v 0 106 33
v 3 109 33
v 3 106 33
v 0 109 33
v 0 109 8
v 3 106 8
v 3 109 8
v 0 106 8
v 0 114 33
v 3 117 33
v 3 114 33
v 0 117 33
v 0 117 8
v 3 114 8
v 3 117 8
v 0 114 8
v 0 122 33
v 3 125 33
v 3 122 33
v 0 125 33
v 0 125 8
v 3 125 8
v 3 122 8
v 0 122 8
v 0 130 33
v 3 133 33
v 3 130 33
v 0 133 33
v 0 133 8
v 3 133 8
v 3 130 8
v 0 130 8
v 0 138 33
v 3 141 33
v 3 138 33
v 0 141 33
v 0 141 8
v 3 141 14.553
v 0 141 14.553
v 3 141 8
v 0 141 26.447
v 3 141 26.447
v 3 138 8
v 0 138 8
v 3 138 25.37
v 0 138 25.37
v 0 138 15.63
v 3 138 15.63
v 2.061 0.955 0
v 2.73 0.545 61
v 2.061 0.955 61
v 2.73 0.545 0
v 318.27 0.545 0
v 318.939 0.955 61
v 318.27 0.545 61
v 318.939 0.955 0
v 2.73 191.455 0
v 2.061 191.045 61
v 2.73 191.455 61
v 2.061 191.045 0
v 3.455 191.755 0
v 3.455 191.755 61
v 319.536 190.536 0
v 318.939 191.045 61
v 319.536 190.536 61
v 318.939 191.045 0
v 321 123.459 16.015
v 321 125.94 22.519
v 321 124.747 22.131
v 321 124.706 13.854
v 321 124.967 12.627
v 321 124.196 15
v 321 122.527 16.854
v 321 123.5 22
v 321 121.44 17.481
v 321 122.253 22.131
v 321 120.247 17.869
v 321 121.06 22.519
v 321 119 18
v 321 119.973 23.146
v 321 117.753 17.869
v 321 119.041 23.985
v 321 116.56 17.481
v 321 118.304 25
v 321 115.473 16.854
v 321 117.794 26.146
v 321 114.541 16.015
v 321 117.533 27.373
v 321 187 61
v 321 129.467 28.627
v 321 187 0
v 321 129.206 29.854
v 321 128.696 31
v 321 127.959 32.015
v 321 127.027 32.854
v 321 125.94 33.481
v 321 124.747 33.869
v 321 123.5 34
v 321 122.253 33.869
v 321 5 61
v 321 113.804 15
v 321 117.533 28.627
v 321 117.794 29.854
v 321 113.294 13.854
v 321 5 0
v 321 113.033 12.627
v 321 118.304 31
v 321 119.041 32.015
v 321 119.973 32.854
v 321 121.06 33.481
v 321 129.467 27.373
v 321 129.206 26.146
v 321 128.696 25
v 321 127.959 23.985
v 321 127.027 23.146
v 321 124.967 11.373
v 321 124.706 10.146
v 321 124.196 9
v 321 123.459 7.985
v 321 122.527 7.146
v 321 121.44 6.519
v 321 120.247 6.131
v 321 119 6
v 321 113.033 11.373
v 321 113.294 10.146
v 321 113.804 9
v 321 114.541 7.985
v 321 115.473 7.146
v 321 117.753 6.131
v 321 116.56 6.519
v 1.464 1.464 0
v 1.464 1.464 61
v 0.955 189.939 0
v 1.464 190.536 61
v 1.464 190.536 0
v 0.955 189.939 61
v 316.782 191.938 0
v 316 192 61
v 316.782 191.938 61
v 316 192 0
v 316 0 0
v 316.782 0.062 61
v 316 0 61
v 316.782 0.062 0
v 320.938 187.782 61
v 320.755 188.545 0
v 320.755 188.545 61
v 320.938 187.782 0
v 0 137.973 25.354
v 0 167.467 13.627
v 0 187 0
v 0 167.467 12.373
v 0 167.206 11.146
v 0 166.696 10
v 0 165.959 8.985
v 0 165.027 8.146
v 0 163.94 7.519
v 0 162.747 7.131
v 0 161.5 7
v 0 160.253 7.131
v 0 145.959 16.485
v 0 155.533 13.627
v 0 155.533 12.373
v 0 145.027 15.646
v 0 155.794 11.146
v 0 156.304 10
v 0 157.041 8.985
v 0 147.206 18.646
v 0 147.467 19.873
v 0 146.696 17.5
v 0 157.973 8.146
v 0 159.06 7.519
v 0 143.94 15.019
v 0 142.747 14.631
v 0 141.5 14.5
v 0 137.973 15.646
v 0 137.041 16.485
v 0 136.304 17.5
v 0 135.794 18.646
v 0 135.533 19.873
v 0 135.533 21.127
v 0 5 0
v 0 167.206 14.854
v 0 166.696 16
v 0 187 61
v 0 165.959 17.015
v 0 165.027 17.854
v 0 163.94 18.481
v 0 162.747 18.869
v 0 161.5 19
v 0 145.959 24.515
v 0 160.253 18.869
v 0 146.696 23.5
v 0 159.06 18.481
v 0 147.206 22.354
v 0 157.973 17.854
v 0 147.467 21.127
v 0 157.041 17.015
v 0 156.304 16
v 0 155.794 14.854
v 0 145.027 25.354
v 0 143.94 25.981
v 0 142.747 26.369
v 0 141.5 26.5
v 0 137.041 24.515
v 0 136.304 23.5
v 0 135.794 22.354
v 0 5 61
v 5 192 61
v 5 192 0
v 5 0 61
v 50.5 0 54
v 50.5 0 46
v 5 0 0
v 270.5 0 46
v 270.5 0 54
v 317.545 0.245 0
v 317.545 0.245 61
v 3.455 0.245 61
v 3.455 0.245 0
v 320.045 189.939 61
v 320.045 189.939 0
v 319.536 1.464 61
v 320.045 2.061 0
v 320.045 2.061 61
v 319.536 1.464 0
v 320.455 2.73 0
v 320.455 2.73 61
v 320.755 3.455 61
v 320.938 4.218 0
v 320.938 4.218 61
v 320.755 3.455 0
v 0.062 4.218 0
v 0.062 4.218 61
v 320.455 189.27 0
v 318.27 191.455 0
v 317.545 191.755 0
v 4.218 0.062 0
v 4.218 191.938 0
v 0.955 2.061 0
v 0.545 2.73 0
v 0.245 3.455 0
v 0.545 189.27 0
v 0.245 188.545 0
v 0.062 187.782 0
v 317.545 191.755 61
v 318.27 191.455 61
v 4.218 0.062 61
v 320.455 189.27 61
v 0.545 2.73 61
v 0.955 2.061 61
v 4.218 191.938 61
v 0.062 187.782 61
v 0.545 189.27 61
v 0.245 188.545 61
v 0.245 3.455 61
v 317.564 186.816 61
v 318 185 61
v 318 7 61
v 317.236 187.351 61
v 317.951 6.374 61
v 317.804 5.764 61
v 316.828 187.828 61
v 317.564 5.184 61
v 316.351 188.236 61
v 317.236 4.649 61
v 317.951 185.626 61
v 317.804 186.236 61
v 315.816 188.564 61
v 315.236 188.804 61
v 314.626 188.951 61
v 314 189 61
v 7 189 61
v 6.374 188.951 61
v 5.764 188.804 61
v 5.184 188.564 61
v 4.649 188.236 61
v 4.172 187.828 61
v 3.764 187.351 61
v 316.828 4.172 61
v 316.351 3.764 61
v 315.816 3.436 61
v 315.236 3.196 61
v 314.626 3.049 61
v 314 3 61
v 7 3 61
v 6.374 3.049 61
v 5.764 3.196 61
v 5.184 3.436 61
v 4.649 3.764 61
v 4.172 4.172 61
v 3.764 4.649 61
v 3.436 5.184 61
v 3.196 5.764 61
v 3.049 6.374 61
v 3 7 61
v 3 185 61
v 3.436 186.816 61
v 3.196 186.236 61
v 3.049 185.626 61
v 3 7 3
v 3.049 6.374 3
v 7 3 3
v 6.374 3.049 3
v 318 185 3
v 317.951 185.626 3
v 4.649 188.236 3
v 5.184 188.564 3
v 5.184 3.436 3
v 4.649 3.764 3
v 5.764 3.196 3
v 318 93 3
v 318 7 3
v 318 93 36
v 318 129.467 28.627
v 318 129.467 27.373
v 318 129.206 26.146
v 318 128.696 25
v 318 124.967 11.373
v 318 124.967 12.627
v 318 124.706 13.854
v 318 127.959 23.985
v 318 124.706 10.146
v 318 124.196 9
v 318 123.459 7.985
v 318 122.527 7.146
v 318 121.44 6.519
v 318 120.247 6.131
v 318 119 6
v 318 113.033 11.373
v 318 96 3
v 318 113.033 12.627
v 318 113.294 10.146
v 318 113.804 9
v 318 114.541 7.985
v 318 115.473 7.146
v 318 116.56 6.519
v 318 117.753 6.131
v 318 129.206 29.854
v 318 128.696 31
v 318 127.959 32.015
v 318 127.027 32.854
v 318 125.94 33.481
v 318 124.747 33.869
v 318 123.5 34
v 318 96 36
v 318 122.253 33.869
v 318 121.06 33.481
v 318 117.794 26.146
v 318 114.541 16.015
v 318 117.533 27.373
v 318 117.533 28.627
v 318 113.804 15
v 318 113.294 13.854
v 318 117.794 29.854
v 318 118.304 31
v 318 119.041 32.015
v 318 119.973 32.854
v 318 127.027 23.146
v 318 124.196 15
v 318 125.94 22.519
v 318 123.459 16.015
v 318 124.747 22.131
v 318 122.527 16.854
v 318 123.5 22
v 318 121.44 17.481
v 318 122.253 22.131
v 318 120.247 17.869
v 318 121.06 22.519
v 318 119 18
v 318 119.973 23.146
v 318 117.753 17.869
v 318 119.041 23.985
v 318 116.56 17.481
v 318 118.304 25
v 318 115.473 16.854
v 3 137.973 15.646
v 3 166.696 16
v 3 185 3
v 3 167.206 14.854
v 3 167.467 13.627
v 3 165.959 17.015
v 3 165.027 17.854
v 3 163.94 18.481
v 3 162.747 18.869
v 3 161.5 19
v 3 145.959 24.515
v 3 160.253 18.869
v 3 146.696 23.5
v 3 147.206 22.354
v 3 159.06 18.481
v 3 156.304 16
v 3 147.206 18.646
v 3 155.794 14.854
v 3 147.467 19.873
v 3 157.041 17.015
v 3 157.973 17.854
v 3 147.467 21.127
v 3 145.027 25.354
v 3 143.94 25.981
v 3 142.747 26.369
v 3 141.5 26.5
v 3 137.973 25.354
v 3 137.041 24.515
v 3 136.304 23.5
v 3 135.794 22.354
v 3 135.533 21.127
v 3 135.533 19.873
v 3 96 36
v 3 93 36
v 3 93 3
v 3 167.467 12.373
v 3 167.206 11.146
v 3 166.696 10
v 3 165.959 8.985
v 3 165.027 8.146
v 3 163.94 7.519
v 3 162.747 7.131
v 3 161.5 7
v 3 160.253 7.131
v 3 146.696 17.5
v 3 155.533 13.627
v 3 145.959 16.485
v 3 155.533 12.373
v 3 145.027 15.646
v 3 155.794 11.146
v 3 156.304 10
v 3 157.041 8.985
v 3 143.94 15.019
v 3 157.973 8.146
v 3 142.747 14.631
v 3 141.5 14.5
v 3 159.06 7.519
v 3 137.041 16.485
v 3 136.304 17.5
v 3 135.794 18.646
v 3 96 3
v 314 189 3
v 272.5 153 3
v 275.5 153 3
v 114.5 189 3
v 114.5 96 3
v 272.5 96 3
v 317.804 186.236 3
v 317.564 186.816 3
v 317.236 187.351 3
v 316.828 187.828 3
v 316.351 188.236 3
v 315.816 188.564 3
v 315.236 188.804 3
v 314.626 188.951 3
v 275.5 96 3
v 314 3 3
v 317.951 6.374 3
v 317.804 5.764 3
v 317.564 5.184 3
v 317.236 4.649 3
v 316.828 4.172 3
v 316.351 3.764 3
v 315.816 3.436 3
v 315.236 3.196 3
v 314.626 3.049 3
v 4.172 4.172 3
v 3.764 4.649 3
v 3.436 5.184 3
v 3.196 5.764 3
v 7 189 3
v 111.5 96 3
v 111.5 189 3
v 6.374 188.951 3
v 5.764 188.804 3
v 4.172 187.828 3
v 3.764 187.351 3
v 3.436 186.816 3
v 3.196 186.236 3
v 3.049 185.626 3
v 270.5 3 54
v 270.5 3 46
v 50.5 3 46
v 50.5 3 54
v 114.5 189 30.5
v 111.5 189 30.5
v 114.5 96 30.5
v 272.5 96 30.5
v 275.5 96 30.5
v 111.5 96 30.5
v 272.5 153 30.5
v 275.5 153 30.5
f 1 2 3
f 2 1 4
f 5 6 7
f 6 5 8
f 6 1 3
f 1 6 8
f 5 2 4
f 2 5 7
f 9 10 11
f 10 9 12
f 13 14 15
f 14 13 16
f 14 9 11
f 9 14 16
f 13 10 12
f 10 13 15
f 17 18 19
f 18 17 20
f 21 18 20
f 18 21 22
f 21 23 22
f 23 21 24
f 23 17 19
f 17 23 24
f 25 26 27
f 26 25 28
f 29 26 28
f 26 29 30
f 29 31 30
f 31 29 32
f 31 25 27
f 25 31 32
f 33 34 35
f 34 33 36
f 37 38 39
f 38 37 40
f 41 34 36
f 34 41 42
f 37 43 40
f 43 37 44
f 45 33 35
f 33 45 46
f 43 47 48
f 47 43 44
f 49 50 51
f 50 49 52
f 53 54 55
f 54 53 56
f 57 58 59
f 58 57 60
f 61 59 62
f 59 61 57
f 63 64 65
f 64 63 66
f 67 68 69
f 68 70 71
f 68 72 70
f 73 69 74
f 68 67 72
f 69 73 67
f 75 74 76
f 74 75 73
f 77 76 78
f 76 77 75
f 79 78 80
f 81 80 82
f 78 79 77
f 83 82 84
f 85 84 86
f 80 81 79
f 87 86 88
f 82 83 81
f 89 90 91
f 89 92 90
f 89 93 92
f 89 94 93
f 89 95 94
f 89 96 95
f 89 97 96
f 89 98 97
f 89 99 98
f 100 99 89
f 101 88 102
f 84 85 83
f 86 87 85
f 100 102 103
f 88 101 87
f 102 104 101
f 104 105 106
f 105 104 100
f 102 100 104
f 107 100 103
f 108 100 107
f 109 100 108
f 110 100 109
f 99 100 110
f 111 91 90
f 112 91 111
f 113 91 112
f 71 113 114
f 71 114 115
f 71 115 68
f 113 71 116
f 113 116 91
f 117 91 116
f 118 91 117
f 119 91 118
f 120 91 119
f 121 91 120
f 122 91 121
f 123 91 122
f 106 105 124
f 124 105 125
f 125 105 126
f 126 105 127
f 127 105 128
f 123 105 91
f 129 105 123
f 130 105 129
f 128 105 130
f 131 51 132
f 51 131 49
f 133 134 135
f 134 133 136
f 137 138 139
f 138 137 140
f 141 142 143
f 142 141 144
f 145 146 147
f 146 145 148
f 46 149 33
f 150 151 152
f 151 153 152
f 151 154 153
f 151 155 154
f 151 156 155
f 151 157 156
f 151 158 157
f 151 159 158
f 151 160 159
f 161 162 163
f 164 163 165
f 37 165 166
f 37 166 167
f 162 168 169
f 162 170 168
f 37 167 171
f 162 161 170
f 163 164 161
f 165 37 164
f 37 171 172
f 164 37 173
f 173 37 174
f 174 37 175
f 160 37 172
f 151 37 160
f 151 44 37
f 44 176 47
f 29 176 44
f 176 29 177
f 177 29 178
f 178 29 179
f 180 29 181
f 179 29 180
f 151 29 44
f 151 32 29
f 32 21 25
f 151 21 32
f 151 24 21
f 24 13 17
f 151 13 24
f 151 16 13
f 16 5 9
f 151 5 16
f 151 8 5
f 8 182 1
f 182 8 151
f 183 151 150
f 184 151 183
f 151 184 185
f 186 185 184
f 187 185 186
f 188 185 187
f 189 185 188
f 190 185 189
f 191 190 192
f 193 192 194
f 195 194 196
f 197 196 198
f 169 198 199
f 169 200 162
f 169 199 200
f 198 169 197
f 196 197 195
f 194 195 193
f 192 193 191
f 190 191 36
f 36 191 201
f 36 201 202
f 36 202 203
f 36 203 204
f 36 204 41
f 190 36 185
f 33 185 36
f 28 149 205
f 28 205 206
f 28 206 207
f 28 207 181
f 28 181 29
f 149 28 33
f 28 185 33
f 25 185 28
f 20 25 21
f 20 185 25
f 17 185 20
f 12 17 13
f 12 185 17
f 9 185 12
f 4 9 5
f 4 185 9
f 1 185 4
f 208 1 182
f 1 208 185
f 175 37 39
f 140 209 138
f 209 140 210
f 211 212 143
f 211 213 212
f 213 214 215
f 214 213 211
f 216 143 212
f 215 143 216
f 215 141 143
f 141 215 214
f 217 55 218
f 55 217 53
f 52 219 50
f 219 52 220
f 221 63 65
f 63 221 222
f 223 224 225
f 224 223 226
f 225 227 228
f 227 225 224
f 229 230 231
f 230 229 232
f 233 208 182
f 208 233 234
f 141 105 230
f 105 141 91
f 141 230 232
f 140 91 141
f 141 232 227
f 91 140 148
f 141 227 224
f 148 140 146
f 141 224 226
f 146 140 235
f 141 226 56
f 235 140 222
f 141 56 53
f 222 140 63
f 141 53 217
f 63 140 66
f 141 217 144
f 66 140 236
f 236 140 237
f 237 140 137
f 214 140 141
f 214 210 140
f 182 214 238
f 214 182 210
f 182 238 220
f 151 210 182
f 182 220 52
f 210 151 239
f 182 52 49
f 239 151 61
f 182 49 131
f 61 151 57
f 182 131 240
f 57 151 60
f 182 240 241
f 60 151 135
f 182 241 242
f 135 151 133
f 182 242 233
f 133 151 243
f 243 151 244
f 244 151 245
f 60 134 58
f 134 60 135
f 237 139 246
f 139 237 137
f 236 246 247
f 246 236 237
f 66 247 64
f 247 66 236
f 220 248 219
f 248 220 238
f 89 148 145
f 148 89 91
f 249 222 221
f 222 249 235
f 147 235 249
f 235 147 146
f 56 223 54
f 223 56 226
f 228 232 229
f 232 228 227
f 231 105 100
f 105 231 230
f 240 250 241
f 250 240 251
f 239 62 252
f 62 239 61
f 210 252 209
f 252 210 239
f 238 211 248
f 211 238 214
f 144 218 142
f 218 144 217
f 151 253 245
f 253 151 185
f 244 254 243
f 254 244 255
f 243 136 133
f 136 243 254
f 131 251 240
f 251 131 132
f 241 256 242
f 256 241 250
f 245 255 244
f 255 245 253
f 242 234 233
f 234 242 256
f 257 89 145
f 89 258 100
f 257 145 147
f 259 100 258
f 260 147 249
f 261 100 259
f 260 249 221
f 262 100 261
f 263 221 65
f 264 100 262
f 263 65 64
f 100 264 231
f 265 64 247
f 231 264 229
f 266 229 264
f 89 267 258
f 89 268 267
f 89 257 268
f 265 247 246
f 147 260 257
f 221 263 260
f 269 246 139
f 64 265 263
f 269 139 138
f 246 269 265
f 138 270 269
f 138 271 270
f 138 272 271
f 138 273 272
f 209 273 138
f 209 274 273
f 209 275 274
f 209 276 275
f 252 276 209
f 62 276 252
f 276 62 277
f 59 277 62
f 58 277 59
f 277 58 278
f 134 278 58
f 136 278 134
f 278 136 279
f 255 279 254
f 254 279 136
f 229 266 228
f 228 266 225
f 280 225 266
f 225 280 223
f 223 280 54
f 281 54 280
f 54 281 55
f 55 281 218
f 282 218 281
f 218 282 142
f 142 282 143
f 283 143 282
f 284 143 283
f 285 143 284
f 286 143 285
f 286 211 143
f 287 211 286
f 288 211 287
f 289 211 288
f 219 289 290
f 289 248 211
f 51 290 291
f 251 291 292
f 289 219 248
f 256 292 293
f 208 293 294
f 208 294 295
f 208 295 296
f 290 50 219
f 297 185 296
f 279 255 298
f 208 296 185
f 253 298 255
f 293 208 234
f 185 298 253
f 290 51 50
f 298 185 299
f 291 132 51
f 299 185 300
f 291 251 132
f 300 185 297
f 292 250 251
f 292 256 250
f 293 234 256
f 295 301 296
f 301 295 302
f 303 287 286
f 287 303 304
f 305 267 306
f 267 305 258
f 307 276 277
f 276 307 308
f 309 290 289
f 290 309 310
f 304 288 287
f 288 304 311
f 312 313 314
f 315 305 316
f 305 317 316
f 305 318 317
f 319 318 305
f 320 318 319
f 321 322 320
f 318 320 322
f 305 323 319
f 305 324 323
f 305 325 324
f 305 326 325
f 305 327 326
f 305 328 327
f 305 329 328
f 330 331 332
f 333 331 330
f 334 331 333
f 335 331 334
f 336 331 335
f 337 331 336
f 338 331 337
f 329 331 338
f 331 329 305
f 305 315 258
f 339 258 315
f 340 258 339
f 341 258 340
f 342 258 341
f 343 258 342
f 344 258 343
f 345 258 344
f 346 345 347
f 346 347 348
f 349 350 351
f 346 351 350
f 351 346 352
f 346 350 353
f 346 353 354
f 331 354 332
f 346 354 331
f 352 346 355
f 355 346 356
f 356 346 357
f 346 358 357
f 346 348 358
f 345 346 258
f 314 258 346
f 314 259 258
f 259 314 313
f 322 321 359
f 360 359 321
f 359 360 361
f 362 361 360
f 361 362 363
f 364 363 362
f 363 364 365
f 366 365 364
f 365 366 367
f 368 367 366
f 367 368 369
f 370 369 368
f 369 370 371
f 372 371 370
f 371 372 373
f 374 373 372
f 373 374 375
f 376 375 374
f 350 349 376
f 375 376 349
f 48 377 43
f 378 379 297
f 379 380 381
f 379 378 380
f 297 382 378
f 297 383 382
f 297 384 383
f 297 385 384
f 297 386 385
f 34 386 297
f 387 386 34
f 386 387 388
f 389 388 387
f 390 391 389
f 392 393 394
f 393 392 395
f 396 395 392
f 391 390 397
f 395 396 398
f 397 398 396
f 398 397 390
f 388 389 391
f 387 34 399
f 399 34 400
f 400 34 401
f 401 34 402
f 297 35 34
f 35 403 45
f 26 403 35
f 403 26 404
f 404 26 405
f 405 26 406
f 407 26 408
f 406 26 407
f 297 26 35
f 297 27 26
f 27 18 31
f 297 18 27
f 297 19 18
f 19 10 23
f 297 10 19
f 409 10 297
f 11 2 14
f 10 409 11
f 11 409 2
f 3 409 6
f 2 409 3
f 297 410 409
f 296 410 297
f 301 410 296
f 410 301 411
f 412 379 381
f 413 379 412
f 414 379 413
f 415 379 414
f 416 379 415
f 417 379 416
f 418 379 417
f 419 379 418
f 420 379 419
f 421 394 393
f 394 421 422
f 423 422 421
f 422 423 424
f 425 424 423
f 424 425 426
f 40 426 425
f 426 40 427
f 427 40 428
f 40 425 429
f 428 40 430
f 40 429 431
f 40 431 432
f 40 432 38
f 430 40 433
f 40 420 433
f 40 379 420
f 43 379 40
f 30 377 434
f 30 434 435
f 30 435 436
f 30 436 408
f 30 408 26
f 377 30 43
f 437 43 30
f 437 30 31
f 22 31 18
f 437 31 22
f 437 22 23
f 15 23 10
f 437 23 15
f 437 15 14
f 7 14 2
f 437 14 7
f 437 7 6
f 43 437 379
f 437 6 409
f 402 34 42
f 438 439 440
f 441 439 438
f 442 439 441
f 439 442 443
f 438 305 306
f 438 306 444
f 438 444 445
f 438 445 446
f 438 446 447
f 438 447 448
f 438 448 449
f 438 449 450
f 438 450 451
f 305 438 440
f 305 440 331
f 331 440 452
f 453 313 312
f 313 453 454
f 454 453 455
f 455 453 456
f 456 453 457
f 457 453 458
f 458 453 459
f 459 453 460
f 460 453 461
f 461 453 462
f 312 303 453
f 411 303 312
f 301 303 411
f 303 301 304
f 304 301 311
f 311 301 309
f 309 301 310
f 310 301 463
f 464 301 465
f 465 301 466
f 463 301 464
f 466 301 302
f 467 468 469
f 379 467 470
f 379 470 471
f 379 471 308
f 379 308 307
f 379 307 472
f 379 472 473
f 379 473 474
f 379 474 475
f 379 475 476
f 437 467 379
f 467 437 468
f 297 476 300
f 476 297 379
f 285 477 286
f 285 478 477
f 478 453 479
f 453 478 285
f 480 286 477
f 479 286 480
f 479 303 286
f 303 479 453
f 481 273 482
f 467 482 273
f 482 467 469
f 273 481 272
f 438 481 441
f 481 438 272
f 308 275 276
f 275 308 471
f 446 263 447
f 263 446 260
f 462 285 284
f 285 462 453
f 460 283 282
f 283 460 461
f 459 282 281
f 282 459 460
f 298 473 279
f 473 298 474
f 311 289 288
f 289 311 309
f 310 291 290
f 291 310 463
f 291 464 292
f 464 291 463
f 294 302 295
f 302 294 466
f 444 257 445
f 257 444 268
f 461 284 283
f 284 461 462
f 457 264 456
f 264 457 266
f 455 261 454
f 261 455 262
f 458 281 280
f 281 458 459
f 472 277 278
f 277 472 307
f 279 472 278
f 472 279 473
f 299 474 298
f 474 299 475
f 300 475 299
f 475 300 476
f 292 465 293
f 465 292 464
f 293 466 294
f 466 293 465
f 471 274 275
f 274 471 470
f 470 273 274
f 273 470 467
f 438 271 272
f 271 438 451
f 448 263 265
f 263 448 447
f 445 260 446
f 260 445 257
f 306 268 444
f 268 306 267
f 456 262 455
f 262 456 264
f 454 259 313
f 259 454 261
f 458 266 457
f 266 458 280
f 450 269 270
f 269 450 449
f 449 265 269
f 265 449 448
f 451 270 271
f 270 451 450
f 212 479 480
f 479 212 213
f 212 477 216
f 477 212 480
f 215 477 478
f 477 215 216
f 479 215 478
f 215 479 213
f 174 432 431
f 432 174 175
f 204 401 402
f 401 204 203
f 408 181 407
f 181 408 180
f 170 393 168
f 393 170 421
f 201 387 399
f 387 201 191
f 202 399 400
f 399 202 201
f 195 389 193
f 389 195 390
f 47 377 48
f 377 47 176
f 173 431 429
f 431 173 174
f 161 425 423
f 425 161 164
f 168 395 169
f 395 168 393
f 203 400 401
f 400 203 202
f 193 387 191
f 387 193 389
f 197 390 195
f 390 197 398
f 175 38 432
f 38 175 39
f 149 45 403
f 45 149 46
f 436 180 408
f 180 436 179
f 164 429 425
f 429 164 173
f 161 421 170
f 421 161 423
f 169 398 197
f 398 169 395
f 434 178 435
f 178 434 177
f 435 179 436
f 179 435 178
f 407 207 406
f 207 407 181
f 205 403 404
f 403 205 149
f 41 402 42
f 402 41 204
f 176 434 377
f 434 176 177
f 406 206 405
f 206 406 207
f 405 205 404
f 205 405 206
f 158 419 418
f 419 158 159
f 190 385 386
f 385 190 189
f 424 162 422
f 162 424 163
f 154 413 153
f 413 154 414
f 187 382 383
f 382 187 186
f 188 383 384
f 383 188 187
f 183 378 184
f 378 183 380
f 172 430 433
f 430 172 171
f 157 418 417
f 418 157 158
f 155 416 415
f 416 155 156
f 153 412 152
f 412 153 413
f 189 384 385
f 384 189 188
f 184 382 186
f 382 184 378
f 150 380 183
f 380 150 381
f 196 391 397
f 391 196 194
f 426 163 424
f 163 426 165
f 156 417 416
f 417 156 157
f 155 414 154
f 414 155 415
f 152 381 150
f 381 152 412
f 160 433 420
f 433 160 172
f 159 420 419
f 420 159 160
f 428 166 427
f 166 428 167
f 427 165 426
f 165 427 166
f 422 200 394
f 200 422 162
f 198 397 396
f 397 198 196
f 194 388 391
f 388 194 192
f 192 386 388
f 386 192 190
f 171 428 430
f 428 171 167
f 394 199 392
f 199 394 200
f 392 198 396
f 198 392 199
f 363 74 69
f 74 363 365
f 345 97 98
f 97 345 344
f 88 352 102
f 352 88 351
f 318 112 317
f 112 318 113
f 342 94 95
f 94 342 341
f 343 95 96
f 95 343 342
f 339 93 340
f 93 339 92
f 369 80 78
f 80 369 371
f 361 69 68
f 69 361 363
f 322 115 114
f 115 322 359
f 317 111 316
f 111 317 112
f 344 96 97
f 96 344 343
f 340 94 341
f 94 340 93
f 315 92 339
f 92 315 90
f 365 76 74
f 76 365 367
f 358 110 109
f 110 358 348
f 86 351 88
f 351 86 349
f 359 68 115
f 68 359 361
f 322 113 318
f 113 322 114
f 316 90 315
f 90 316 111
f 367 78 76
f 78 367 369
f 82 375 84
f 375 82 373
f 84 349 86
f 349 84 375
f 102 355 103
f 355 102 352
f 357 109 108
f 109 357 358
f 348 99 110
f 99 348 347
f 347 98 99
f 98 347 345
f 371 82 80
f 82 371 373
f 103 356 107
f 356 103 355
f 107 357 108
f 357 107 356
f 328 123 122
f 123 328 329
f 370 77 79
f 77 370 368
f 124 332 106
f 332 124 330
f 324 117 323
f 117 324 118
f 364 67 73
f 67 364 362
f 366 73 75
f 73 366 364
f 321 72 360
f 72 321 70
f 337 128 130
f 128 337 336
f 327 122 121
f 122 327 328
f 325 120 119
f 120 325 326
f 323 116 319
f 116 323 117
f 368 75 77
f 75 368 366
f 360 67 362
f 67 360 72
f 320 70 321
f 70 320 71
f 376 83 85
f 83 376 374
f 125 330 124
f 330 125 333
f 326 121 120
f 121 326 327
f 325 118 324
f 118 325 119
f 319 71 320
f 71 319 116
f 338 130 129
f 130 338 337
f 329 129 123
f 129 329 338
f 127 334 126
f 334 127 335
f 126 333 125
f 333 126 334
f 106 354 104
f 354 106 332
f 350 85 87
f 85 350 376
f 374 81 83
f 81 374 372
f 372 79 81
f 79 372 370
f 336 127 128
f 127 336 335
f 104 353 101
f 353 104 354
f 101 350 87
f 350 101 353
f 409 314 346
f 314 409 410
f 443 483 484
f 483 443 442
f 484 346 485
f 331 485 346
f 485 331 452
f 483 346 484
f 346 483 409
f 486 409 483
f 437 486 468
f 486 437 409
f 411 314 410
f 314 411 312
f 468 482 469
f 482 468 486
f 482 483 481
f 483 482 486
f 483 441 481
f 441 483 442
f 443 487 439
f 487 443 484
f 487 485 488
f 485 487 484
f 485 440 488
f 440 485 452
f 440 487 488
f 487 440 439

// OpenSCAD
// Story Printer — Base Unit Case
// Houses: N80 Printer, Jetson Orin Nano, Anker 737, Rode Wireless GO II RX
// Designed for Bambu Labs P1S (256x256x256mm build volume)
//
// Print settings: 0.2mm layer height, 15% infill, tree supports
// Material: PLA or PETG

/* [Component Dimensions (mm)] */
// N80 Portable Thermal Printer
printer_w = 280;   // width (long axis)
printer_d = 84;    // depth
printer_h = 51;    // height

// Jetson Orin Nano (with connectors)
jetson_w = 103;
jetson_d = 91;
jetson_h = 35;

// Anker 737 PowerCore 24K
anker_w = 156;
anker_d = 55;
anker_h = 50;

// Rode Wireless GO II Receiver
rode_w = 44;
rode_d = 46;
rode_h = 18;

/* [Case Parameters] */
wall = 3;             // wall thickness
clearance = 2;        // extra space around each component
corner_r = 5;         // corner radius
vent_slot_w = 3;      // ventilation slot width
vent_slot_gap = 5;    // gap between vent slots

// Paper exit slot for the printer
paper_slot_w = 220;   // wide enough for A4/Letter paper
paper_slot_h = 8;     // paper thickness clearance

// Cable pass-through holes
cable_hole_d = 12;    // diameter for USB-C / HDMI cables

/* [Layout] */
// Components arranged side by side in the base:
//   [ Printer (full width) ]
//   [ Jetson | Anker | Rode ]

// Bottom row: electronics side by side
elec_total_w = (jetson_w + clearance) + (anker_w + clearance) + (rode_w + clearance) + wall * 2;

// Case interior width = max(printer width, electronics row)
interior_w = max(printer_w + clearance * 2, elec_total_w);
interior_d = (printer_d + clearance * 2) + wall + max(jetson_d, anker_d, rode_d) + clearance * 2;
interior_h = max(printer_h, max(jetson_h, anker_h)) + clearance * 2;

// Outer dimensions
case_w = interior_w + wall * 2;
case_d = interior_d + wall * 2;
case_h = interior_h + wall * 2;

echo(str("Case outer dimensions: ", case_w, " x ", case_d, " x ", case_h, " mm"));
echo(str("Fits on P1S build plate (256mm): width=", case_w <= 256 ? "YES" : "NO -- split print needed"));

/* [Computed positions] */
// Printer sits in the back (wide side)
printer_x = (interior_w - printer_w) / 2 + wall;
printer_y = wall + clearance;
printer_z = wall;

// Electronics row sits in front of the printer
elec_y = printer_y + printer_d + clearance * 2 + wall;

// Jetson on the left
jetson_x = wall + clearance;
jetson_y = elec_y;
jetson_z = wall;

// Anker in the middle
anker_x = jetson_x + jetson_w + clearance + wall;
anker_y = elec_y;
anker_z = wall;

// Rode on the right
rode_x = anker_x + anker_w + clearance + wall;
rode_y = elec_y;
rode_z = wall;

// -----------------------------------------------------------------------
// Modules
// -----------------------------------------------------------------------
module rounded_box(size, r) {
    hull() {
        for (x = [r, size[0]-r])
            for (y = [r, size[1]-r])
                translate([x, y, 0])
                    cylinder(r=r, h=size[2], $fn=40);
    }
}

module vent_slots(length, height, slot_w, gap, count) {
    for (i = [0:count-1]) {
        translate([0, i * (slot_w + gap), 0])
            cube([wall + 1, slot_w, height]);
    }
}

module cable_hole(d) {
    rotate([0, 90, 0])
        cylinder(d=d, h=wall + 2, $fn=30);
}

// -----------------------------------------------------------------------
// Main case body
// -----------------------------------------------------------------------
module base_case() {
    difference() {
        // Outer shell
        rounded_box([case_w, case_d, case_h], corner_r);

        // Hollow interior
        translate([wall, wall, wall])
            rounded_box([interior_w, interior_d, interior_h + wall], corner_r - 1);

        // --- PRINTER PAPER EXIT SLOT (front face) ---
        translate([case_w/2 - paper_slot_w/2, -1, wall + printer_h - paper_slot_h])
            cube([paper_slot_w, wall + 2, paper_slot_h]);

        // --- VENTILATION: Jetson side (left wall) ---
        num_vents = 5;
        translate([-0.5, jetson_y + 10, jetson_z + 5])
            vent_slots(wall + 1, jetson_h - 10, vent_slot_w, vent_slot_gap, num_vents);

        // --- VENTILATION: Jetson top (open cutout above Jetson) ---
        translate([jetson_x + 5, jetson_y + 5, case_h - wall - 0.5])
            cube([jetson_w - 10, jetson_d - 10, wall + 1]);

        // --- CABLE PASS-THROUGHS ---
        // Jetson USB/HDMI (left side)
        translate([-0.5, jetson_y + jetson_d/2, jetson_z + jetson_h/2])
            cable_hole(cable_hole_d);

        // Jetson power barrel jack (left side, lower)
        translate([-0.5, jetson_y + jetson_d/2 + 20, jetson_z + 10])
            cable_hole(cable_hole_d);

        // Anker USB-C charging (right side)
        translate([case_w - wall - 0.5, anker_y + anker_d/2, anker_z + anker_h/2])
            cable_hole(cable_hole_d);

        // Rode USB-C (right side)
        translate([case_w - wall - 0.5, rode_y + rode_d/2, rode_z + rode_h/2])
            cable_hole(cable_hole_d);
    }

    // --- INTERNAL DIVIDER WALLS ---
    // Divider between printer bay and electronics bay
    translate([wall, printer_y + printer_d + clearance * 2, wall])
        cube([interior_w, wall, interior_h * 0.6]);

    // Divider between Jetson and Anker
    translate([anker_x - wall/2, elec_y, wall])
        cube([wall, max(jetson_d, anker_d) + clearance, interior_h * 0.5]);

    // Divider between Anker and Rode
    translate([rode_x - wall/2, elec_y, wall])
        cube([wall, max(anker_d, rode_d) + clearance, interior_h * 0.5]);
}

// -----------------------------------------------------------------------
// Render
// -----------------------------------------------------------------------
base_case();

// Component visualization (for fit checking — comment out before export)
%translate([printer_x, printer_y, printer_z])
    color("DimGray", 0.5) cube([printer_w, printer_d, printer_h]);

%translate([jetson_x, jetson_y, jetson_z])
    color("Green", 0.5) cube([jetson_w, jetson_d, jetson_h]);

%translate([anker_x, anker_y, anker_z])
    color("DarkBlue", 0.5) cube([anker_w, anker_d, anker_h]);

%translate([rode_x, rode_y, rode_z])
    color("Red", 0.5) cube([rode_w, rode_d, rode_h]);
